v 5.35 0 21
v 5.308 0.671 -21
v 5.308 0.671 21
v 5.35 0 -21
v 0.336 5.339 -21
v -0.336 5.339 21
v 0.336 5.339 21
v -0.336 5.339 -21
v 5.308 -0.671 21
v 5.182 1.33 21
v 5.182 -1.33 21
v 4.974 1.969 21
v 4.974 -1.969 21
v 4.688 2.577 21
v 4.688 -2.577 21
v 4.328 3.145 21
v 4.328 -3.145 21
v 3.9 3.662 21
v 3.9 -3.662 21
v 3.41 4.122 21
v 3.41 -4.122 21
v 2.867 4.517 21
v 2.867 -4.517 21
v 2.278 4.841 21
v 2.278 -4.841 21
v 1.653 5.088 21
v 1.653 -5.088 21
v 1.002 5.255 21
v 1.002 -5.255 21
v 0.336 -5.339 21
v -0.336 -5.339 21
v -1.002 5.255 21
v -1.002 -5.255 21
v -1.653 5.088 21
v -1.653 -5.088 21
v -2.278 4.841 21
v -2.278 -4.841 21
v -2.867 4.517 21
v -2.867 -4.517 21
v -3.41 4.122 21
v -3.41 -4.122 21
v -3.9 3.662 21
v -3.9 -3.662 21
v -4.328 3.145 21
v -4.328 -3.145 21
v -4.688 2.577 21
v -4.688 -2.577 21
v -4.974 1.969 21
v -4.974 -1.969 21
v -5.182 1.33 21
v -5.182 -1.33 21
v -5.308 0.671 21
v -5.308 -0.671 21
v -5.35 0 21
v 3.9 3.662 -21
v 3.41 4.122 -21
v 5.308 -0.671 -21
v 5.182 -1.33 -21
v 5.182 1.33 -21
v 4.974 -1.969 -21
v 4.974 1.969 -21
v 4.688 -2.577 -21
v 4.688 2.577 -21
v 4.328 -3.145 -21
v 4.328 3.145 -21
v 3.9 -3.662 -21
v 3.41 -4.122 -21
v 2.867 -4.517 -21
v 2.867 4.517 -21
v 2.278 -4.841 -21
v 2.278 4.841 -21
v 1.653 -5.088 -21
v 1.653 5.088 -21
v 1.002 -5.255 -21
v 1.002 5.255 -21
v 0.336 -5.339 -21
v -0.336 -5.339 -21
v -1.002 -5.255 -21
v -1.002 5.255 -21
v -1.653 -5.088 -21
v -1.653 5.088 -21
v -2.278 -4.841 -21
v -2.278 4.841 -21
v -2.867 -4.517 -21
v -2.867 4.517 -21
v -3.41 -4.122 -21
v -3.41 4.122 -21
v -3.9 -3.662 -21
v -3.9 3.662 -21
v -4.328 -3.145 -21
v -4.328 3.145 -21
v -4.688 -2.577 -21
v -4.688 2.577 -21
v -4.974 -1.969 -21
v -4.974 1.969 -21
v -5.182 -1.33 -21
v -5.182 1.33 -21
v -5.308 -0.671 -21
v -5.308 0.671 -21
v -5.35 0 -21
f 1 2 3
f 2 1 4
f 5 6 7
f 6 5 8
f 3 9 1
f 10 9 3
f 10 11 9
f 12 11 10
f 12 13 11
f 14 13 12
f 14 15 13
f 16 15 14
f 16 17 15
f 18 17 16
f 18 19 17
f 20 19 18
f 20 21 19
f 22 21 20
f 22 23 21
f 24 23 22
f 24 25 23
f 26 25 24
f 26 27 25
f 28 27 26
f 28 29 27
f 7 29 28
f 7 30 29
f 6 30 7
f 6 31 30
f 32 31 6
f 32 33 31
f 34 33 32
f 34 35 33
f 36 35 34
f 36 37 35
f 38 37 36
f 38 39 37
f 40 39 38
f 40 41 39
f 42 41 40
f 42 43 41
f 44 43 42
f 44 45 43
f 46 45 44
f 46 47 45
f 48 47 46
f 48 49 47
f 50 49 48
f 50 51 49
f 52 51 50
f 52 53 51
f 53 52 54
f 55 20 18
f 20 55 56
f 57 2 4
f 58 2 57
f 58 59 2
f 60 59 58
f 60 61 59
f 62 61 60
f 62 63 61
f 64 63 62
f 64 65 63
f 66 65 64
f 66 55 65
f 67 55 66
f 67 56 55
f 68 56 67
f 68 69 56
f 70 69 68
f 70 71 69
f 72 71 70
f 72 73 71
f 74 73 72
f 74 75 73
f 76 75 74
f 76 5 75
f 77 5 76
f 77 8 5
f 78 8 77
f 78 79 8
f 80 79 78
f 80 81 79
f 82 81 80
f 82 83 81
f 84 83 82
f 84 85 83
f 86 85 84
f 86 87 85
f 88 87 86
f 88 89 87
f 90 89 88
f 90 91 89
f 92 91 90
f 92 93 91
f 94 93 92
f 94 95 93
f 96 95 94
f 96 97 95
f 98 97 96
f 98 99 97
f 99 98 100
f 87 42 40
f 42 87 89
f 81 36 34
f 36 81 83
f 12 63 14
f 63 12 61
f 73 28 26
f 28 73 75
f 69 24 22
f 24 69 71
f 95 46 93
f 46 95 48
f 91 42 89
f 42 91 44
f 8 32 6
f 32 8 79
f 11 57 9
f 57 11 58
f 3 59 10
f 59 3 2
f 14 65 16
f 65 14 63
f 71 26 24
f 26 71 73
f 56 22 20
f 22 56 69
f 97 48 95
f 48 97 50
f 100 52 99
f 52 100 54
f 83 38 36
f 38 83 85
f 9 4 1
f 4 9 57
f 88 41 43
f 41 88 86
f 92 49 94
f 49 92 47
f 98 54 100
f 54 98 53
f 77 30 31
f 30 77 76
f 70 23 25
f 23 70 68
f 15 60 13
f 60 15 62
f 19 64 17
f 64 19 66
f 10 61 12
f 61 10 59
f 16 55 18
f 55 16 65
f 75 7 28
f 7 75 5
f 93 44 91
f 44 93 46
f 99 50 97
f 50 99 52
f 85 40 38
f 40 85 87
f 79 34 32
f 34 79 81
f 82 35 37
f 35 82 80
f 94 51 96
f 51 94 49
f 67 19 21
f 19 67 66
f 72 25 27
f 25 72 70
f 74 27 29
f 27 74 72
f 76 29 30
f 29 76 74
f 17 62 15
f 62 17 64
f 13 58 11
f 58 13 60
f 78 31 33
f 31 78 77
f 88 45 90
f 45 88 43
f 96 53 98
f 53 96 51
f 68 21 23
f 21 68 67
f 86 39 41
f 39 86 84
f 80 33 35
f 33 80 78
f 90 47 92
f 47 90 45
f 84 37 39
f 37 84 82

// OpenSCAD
$fn = 50;


difference() {
	union() {
		translate(v = [0, 0, -21.0000000000]) {
			cylinder(h = 42, r = 5.3500000000);
		}
	}
	union() {
		translate(v = [0, 0, -100.0000000000]) {
			cylinder(h = 200, r = 0);
		}
	}
}
